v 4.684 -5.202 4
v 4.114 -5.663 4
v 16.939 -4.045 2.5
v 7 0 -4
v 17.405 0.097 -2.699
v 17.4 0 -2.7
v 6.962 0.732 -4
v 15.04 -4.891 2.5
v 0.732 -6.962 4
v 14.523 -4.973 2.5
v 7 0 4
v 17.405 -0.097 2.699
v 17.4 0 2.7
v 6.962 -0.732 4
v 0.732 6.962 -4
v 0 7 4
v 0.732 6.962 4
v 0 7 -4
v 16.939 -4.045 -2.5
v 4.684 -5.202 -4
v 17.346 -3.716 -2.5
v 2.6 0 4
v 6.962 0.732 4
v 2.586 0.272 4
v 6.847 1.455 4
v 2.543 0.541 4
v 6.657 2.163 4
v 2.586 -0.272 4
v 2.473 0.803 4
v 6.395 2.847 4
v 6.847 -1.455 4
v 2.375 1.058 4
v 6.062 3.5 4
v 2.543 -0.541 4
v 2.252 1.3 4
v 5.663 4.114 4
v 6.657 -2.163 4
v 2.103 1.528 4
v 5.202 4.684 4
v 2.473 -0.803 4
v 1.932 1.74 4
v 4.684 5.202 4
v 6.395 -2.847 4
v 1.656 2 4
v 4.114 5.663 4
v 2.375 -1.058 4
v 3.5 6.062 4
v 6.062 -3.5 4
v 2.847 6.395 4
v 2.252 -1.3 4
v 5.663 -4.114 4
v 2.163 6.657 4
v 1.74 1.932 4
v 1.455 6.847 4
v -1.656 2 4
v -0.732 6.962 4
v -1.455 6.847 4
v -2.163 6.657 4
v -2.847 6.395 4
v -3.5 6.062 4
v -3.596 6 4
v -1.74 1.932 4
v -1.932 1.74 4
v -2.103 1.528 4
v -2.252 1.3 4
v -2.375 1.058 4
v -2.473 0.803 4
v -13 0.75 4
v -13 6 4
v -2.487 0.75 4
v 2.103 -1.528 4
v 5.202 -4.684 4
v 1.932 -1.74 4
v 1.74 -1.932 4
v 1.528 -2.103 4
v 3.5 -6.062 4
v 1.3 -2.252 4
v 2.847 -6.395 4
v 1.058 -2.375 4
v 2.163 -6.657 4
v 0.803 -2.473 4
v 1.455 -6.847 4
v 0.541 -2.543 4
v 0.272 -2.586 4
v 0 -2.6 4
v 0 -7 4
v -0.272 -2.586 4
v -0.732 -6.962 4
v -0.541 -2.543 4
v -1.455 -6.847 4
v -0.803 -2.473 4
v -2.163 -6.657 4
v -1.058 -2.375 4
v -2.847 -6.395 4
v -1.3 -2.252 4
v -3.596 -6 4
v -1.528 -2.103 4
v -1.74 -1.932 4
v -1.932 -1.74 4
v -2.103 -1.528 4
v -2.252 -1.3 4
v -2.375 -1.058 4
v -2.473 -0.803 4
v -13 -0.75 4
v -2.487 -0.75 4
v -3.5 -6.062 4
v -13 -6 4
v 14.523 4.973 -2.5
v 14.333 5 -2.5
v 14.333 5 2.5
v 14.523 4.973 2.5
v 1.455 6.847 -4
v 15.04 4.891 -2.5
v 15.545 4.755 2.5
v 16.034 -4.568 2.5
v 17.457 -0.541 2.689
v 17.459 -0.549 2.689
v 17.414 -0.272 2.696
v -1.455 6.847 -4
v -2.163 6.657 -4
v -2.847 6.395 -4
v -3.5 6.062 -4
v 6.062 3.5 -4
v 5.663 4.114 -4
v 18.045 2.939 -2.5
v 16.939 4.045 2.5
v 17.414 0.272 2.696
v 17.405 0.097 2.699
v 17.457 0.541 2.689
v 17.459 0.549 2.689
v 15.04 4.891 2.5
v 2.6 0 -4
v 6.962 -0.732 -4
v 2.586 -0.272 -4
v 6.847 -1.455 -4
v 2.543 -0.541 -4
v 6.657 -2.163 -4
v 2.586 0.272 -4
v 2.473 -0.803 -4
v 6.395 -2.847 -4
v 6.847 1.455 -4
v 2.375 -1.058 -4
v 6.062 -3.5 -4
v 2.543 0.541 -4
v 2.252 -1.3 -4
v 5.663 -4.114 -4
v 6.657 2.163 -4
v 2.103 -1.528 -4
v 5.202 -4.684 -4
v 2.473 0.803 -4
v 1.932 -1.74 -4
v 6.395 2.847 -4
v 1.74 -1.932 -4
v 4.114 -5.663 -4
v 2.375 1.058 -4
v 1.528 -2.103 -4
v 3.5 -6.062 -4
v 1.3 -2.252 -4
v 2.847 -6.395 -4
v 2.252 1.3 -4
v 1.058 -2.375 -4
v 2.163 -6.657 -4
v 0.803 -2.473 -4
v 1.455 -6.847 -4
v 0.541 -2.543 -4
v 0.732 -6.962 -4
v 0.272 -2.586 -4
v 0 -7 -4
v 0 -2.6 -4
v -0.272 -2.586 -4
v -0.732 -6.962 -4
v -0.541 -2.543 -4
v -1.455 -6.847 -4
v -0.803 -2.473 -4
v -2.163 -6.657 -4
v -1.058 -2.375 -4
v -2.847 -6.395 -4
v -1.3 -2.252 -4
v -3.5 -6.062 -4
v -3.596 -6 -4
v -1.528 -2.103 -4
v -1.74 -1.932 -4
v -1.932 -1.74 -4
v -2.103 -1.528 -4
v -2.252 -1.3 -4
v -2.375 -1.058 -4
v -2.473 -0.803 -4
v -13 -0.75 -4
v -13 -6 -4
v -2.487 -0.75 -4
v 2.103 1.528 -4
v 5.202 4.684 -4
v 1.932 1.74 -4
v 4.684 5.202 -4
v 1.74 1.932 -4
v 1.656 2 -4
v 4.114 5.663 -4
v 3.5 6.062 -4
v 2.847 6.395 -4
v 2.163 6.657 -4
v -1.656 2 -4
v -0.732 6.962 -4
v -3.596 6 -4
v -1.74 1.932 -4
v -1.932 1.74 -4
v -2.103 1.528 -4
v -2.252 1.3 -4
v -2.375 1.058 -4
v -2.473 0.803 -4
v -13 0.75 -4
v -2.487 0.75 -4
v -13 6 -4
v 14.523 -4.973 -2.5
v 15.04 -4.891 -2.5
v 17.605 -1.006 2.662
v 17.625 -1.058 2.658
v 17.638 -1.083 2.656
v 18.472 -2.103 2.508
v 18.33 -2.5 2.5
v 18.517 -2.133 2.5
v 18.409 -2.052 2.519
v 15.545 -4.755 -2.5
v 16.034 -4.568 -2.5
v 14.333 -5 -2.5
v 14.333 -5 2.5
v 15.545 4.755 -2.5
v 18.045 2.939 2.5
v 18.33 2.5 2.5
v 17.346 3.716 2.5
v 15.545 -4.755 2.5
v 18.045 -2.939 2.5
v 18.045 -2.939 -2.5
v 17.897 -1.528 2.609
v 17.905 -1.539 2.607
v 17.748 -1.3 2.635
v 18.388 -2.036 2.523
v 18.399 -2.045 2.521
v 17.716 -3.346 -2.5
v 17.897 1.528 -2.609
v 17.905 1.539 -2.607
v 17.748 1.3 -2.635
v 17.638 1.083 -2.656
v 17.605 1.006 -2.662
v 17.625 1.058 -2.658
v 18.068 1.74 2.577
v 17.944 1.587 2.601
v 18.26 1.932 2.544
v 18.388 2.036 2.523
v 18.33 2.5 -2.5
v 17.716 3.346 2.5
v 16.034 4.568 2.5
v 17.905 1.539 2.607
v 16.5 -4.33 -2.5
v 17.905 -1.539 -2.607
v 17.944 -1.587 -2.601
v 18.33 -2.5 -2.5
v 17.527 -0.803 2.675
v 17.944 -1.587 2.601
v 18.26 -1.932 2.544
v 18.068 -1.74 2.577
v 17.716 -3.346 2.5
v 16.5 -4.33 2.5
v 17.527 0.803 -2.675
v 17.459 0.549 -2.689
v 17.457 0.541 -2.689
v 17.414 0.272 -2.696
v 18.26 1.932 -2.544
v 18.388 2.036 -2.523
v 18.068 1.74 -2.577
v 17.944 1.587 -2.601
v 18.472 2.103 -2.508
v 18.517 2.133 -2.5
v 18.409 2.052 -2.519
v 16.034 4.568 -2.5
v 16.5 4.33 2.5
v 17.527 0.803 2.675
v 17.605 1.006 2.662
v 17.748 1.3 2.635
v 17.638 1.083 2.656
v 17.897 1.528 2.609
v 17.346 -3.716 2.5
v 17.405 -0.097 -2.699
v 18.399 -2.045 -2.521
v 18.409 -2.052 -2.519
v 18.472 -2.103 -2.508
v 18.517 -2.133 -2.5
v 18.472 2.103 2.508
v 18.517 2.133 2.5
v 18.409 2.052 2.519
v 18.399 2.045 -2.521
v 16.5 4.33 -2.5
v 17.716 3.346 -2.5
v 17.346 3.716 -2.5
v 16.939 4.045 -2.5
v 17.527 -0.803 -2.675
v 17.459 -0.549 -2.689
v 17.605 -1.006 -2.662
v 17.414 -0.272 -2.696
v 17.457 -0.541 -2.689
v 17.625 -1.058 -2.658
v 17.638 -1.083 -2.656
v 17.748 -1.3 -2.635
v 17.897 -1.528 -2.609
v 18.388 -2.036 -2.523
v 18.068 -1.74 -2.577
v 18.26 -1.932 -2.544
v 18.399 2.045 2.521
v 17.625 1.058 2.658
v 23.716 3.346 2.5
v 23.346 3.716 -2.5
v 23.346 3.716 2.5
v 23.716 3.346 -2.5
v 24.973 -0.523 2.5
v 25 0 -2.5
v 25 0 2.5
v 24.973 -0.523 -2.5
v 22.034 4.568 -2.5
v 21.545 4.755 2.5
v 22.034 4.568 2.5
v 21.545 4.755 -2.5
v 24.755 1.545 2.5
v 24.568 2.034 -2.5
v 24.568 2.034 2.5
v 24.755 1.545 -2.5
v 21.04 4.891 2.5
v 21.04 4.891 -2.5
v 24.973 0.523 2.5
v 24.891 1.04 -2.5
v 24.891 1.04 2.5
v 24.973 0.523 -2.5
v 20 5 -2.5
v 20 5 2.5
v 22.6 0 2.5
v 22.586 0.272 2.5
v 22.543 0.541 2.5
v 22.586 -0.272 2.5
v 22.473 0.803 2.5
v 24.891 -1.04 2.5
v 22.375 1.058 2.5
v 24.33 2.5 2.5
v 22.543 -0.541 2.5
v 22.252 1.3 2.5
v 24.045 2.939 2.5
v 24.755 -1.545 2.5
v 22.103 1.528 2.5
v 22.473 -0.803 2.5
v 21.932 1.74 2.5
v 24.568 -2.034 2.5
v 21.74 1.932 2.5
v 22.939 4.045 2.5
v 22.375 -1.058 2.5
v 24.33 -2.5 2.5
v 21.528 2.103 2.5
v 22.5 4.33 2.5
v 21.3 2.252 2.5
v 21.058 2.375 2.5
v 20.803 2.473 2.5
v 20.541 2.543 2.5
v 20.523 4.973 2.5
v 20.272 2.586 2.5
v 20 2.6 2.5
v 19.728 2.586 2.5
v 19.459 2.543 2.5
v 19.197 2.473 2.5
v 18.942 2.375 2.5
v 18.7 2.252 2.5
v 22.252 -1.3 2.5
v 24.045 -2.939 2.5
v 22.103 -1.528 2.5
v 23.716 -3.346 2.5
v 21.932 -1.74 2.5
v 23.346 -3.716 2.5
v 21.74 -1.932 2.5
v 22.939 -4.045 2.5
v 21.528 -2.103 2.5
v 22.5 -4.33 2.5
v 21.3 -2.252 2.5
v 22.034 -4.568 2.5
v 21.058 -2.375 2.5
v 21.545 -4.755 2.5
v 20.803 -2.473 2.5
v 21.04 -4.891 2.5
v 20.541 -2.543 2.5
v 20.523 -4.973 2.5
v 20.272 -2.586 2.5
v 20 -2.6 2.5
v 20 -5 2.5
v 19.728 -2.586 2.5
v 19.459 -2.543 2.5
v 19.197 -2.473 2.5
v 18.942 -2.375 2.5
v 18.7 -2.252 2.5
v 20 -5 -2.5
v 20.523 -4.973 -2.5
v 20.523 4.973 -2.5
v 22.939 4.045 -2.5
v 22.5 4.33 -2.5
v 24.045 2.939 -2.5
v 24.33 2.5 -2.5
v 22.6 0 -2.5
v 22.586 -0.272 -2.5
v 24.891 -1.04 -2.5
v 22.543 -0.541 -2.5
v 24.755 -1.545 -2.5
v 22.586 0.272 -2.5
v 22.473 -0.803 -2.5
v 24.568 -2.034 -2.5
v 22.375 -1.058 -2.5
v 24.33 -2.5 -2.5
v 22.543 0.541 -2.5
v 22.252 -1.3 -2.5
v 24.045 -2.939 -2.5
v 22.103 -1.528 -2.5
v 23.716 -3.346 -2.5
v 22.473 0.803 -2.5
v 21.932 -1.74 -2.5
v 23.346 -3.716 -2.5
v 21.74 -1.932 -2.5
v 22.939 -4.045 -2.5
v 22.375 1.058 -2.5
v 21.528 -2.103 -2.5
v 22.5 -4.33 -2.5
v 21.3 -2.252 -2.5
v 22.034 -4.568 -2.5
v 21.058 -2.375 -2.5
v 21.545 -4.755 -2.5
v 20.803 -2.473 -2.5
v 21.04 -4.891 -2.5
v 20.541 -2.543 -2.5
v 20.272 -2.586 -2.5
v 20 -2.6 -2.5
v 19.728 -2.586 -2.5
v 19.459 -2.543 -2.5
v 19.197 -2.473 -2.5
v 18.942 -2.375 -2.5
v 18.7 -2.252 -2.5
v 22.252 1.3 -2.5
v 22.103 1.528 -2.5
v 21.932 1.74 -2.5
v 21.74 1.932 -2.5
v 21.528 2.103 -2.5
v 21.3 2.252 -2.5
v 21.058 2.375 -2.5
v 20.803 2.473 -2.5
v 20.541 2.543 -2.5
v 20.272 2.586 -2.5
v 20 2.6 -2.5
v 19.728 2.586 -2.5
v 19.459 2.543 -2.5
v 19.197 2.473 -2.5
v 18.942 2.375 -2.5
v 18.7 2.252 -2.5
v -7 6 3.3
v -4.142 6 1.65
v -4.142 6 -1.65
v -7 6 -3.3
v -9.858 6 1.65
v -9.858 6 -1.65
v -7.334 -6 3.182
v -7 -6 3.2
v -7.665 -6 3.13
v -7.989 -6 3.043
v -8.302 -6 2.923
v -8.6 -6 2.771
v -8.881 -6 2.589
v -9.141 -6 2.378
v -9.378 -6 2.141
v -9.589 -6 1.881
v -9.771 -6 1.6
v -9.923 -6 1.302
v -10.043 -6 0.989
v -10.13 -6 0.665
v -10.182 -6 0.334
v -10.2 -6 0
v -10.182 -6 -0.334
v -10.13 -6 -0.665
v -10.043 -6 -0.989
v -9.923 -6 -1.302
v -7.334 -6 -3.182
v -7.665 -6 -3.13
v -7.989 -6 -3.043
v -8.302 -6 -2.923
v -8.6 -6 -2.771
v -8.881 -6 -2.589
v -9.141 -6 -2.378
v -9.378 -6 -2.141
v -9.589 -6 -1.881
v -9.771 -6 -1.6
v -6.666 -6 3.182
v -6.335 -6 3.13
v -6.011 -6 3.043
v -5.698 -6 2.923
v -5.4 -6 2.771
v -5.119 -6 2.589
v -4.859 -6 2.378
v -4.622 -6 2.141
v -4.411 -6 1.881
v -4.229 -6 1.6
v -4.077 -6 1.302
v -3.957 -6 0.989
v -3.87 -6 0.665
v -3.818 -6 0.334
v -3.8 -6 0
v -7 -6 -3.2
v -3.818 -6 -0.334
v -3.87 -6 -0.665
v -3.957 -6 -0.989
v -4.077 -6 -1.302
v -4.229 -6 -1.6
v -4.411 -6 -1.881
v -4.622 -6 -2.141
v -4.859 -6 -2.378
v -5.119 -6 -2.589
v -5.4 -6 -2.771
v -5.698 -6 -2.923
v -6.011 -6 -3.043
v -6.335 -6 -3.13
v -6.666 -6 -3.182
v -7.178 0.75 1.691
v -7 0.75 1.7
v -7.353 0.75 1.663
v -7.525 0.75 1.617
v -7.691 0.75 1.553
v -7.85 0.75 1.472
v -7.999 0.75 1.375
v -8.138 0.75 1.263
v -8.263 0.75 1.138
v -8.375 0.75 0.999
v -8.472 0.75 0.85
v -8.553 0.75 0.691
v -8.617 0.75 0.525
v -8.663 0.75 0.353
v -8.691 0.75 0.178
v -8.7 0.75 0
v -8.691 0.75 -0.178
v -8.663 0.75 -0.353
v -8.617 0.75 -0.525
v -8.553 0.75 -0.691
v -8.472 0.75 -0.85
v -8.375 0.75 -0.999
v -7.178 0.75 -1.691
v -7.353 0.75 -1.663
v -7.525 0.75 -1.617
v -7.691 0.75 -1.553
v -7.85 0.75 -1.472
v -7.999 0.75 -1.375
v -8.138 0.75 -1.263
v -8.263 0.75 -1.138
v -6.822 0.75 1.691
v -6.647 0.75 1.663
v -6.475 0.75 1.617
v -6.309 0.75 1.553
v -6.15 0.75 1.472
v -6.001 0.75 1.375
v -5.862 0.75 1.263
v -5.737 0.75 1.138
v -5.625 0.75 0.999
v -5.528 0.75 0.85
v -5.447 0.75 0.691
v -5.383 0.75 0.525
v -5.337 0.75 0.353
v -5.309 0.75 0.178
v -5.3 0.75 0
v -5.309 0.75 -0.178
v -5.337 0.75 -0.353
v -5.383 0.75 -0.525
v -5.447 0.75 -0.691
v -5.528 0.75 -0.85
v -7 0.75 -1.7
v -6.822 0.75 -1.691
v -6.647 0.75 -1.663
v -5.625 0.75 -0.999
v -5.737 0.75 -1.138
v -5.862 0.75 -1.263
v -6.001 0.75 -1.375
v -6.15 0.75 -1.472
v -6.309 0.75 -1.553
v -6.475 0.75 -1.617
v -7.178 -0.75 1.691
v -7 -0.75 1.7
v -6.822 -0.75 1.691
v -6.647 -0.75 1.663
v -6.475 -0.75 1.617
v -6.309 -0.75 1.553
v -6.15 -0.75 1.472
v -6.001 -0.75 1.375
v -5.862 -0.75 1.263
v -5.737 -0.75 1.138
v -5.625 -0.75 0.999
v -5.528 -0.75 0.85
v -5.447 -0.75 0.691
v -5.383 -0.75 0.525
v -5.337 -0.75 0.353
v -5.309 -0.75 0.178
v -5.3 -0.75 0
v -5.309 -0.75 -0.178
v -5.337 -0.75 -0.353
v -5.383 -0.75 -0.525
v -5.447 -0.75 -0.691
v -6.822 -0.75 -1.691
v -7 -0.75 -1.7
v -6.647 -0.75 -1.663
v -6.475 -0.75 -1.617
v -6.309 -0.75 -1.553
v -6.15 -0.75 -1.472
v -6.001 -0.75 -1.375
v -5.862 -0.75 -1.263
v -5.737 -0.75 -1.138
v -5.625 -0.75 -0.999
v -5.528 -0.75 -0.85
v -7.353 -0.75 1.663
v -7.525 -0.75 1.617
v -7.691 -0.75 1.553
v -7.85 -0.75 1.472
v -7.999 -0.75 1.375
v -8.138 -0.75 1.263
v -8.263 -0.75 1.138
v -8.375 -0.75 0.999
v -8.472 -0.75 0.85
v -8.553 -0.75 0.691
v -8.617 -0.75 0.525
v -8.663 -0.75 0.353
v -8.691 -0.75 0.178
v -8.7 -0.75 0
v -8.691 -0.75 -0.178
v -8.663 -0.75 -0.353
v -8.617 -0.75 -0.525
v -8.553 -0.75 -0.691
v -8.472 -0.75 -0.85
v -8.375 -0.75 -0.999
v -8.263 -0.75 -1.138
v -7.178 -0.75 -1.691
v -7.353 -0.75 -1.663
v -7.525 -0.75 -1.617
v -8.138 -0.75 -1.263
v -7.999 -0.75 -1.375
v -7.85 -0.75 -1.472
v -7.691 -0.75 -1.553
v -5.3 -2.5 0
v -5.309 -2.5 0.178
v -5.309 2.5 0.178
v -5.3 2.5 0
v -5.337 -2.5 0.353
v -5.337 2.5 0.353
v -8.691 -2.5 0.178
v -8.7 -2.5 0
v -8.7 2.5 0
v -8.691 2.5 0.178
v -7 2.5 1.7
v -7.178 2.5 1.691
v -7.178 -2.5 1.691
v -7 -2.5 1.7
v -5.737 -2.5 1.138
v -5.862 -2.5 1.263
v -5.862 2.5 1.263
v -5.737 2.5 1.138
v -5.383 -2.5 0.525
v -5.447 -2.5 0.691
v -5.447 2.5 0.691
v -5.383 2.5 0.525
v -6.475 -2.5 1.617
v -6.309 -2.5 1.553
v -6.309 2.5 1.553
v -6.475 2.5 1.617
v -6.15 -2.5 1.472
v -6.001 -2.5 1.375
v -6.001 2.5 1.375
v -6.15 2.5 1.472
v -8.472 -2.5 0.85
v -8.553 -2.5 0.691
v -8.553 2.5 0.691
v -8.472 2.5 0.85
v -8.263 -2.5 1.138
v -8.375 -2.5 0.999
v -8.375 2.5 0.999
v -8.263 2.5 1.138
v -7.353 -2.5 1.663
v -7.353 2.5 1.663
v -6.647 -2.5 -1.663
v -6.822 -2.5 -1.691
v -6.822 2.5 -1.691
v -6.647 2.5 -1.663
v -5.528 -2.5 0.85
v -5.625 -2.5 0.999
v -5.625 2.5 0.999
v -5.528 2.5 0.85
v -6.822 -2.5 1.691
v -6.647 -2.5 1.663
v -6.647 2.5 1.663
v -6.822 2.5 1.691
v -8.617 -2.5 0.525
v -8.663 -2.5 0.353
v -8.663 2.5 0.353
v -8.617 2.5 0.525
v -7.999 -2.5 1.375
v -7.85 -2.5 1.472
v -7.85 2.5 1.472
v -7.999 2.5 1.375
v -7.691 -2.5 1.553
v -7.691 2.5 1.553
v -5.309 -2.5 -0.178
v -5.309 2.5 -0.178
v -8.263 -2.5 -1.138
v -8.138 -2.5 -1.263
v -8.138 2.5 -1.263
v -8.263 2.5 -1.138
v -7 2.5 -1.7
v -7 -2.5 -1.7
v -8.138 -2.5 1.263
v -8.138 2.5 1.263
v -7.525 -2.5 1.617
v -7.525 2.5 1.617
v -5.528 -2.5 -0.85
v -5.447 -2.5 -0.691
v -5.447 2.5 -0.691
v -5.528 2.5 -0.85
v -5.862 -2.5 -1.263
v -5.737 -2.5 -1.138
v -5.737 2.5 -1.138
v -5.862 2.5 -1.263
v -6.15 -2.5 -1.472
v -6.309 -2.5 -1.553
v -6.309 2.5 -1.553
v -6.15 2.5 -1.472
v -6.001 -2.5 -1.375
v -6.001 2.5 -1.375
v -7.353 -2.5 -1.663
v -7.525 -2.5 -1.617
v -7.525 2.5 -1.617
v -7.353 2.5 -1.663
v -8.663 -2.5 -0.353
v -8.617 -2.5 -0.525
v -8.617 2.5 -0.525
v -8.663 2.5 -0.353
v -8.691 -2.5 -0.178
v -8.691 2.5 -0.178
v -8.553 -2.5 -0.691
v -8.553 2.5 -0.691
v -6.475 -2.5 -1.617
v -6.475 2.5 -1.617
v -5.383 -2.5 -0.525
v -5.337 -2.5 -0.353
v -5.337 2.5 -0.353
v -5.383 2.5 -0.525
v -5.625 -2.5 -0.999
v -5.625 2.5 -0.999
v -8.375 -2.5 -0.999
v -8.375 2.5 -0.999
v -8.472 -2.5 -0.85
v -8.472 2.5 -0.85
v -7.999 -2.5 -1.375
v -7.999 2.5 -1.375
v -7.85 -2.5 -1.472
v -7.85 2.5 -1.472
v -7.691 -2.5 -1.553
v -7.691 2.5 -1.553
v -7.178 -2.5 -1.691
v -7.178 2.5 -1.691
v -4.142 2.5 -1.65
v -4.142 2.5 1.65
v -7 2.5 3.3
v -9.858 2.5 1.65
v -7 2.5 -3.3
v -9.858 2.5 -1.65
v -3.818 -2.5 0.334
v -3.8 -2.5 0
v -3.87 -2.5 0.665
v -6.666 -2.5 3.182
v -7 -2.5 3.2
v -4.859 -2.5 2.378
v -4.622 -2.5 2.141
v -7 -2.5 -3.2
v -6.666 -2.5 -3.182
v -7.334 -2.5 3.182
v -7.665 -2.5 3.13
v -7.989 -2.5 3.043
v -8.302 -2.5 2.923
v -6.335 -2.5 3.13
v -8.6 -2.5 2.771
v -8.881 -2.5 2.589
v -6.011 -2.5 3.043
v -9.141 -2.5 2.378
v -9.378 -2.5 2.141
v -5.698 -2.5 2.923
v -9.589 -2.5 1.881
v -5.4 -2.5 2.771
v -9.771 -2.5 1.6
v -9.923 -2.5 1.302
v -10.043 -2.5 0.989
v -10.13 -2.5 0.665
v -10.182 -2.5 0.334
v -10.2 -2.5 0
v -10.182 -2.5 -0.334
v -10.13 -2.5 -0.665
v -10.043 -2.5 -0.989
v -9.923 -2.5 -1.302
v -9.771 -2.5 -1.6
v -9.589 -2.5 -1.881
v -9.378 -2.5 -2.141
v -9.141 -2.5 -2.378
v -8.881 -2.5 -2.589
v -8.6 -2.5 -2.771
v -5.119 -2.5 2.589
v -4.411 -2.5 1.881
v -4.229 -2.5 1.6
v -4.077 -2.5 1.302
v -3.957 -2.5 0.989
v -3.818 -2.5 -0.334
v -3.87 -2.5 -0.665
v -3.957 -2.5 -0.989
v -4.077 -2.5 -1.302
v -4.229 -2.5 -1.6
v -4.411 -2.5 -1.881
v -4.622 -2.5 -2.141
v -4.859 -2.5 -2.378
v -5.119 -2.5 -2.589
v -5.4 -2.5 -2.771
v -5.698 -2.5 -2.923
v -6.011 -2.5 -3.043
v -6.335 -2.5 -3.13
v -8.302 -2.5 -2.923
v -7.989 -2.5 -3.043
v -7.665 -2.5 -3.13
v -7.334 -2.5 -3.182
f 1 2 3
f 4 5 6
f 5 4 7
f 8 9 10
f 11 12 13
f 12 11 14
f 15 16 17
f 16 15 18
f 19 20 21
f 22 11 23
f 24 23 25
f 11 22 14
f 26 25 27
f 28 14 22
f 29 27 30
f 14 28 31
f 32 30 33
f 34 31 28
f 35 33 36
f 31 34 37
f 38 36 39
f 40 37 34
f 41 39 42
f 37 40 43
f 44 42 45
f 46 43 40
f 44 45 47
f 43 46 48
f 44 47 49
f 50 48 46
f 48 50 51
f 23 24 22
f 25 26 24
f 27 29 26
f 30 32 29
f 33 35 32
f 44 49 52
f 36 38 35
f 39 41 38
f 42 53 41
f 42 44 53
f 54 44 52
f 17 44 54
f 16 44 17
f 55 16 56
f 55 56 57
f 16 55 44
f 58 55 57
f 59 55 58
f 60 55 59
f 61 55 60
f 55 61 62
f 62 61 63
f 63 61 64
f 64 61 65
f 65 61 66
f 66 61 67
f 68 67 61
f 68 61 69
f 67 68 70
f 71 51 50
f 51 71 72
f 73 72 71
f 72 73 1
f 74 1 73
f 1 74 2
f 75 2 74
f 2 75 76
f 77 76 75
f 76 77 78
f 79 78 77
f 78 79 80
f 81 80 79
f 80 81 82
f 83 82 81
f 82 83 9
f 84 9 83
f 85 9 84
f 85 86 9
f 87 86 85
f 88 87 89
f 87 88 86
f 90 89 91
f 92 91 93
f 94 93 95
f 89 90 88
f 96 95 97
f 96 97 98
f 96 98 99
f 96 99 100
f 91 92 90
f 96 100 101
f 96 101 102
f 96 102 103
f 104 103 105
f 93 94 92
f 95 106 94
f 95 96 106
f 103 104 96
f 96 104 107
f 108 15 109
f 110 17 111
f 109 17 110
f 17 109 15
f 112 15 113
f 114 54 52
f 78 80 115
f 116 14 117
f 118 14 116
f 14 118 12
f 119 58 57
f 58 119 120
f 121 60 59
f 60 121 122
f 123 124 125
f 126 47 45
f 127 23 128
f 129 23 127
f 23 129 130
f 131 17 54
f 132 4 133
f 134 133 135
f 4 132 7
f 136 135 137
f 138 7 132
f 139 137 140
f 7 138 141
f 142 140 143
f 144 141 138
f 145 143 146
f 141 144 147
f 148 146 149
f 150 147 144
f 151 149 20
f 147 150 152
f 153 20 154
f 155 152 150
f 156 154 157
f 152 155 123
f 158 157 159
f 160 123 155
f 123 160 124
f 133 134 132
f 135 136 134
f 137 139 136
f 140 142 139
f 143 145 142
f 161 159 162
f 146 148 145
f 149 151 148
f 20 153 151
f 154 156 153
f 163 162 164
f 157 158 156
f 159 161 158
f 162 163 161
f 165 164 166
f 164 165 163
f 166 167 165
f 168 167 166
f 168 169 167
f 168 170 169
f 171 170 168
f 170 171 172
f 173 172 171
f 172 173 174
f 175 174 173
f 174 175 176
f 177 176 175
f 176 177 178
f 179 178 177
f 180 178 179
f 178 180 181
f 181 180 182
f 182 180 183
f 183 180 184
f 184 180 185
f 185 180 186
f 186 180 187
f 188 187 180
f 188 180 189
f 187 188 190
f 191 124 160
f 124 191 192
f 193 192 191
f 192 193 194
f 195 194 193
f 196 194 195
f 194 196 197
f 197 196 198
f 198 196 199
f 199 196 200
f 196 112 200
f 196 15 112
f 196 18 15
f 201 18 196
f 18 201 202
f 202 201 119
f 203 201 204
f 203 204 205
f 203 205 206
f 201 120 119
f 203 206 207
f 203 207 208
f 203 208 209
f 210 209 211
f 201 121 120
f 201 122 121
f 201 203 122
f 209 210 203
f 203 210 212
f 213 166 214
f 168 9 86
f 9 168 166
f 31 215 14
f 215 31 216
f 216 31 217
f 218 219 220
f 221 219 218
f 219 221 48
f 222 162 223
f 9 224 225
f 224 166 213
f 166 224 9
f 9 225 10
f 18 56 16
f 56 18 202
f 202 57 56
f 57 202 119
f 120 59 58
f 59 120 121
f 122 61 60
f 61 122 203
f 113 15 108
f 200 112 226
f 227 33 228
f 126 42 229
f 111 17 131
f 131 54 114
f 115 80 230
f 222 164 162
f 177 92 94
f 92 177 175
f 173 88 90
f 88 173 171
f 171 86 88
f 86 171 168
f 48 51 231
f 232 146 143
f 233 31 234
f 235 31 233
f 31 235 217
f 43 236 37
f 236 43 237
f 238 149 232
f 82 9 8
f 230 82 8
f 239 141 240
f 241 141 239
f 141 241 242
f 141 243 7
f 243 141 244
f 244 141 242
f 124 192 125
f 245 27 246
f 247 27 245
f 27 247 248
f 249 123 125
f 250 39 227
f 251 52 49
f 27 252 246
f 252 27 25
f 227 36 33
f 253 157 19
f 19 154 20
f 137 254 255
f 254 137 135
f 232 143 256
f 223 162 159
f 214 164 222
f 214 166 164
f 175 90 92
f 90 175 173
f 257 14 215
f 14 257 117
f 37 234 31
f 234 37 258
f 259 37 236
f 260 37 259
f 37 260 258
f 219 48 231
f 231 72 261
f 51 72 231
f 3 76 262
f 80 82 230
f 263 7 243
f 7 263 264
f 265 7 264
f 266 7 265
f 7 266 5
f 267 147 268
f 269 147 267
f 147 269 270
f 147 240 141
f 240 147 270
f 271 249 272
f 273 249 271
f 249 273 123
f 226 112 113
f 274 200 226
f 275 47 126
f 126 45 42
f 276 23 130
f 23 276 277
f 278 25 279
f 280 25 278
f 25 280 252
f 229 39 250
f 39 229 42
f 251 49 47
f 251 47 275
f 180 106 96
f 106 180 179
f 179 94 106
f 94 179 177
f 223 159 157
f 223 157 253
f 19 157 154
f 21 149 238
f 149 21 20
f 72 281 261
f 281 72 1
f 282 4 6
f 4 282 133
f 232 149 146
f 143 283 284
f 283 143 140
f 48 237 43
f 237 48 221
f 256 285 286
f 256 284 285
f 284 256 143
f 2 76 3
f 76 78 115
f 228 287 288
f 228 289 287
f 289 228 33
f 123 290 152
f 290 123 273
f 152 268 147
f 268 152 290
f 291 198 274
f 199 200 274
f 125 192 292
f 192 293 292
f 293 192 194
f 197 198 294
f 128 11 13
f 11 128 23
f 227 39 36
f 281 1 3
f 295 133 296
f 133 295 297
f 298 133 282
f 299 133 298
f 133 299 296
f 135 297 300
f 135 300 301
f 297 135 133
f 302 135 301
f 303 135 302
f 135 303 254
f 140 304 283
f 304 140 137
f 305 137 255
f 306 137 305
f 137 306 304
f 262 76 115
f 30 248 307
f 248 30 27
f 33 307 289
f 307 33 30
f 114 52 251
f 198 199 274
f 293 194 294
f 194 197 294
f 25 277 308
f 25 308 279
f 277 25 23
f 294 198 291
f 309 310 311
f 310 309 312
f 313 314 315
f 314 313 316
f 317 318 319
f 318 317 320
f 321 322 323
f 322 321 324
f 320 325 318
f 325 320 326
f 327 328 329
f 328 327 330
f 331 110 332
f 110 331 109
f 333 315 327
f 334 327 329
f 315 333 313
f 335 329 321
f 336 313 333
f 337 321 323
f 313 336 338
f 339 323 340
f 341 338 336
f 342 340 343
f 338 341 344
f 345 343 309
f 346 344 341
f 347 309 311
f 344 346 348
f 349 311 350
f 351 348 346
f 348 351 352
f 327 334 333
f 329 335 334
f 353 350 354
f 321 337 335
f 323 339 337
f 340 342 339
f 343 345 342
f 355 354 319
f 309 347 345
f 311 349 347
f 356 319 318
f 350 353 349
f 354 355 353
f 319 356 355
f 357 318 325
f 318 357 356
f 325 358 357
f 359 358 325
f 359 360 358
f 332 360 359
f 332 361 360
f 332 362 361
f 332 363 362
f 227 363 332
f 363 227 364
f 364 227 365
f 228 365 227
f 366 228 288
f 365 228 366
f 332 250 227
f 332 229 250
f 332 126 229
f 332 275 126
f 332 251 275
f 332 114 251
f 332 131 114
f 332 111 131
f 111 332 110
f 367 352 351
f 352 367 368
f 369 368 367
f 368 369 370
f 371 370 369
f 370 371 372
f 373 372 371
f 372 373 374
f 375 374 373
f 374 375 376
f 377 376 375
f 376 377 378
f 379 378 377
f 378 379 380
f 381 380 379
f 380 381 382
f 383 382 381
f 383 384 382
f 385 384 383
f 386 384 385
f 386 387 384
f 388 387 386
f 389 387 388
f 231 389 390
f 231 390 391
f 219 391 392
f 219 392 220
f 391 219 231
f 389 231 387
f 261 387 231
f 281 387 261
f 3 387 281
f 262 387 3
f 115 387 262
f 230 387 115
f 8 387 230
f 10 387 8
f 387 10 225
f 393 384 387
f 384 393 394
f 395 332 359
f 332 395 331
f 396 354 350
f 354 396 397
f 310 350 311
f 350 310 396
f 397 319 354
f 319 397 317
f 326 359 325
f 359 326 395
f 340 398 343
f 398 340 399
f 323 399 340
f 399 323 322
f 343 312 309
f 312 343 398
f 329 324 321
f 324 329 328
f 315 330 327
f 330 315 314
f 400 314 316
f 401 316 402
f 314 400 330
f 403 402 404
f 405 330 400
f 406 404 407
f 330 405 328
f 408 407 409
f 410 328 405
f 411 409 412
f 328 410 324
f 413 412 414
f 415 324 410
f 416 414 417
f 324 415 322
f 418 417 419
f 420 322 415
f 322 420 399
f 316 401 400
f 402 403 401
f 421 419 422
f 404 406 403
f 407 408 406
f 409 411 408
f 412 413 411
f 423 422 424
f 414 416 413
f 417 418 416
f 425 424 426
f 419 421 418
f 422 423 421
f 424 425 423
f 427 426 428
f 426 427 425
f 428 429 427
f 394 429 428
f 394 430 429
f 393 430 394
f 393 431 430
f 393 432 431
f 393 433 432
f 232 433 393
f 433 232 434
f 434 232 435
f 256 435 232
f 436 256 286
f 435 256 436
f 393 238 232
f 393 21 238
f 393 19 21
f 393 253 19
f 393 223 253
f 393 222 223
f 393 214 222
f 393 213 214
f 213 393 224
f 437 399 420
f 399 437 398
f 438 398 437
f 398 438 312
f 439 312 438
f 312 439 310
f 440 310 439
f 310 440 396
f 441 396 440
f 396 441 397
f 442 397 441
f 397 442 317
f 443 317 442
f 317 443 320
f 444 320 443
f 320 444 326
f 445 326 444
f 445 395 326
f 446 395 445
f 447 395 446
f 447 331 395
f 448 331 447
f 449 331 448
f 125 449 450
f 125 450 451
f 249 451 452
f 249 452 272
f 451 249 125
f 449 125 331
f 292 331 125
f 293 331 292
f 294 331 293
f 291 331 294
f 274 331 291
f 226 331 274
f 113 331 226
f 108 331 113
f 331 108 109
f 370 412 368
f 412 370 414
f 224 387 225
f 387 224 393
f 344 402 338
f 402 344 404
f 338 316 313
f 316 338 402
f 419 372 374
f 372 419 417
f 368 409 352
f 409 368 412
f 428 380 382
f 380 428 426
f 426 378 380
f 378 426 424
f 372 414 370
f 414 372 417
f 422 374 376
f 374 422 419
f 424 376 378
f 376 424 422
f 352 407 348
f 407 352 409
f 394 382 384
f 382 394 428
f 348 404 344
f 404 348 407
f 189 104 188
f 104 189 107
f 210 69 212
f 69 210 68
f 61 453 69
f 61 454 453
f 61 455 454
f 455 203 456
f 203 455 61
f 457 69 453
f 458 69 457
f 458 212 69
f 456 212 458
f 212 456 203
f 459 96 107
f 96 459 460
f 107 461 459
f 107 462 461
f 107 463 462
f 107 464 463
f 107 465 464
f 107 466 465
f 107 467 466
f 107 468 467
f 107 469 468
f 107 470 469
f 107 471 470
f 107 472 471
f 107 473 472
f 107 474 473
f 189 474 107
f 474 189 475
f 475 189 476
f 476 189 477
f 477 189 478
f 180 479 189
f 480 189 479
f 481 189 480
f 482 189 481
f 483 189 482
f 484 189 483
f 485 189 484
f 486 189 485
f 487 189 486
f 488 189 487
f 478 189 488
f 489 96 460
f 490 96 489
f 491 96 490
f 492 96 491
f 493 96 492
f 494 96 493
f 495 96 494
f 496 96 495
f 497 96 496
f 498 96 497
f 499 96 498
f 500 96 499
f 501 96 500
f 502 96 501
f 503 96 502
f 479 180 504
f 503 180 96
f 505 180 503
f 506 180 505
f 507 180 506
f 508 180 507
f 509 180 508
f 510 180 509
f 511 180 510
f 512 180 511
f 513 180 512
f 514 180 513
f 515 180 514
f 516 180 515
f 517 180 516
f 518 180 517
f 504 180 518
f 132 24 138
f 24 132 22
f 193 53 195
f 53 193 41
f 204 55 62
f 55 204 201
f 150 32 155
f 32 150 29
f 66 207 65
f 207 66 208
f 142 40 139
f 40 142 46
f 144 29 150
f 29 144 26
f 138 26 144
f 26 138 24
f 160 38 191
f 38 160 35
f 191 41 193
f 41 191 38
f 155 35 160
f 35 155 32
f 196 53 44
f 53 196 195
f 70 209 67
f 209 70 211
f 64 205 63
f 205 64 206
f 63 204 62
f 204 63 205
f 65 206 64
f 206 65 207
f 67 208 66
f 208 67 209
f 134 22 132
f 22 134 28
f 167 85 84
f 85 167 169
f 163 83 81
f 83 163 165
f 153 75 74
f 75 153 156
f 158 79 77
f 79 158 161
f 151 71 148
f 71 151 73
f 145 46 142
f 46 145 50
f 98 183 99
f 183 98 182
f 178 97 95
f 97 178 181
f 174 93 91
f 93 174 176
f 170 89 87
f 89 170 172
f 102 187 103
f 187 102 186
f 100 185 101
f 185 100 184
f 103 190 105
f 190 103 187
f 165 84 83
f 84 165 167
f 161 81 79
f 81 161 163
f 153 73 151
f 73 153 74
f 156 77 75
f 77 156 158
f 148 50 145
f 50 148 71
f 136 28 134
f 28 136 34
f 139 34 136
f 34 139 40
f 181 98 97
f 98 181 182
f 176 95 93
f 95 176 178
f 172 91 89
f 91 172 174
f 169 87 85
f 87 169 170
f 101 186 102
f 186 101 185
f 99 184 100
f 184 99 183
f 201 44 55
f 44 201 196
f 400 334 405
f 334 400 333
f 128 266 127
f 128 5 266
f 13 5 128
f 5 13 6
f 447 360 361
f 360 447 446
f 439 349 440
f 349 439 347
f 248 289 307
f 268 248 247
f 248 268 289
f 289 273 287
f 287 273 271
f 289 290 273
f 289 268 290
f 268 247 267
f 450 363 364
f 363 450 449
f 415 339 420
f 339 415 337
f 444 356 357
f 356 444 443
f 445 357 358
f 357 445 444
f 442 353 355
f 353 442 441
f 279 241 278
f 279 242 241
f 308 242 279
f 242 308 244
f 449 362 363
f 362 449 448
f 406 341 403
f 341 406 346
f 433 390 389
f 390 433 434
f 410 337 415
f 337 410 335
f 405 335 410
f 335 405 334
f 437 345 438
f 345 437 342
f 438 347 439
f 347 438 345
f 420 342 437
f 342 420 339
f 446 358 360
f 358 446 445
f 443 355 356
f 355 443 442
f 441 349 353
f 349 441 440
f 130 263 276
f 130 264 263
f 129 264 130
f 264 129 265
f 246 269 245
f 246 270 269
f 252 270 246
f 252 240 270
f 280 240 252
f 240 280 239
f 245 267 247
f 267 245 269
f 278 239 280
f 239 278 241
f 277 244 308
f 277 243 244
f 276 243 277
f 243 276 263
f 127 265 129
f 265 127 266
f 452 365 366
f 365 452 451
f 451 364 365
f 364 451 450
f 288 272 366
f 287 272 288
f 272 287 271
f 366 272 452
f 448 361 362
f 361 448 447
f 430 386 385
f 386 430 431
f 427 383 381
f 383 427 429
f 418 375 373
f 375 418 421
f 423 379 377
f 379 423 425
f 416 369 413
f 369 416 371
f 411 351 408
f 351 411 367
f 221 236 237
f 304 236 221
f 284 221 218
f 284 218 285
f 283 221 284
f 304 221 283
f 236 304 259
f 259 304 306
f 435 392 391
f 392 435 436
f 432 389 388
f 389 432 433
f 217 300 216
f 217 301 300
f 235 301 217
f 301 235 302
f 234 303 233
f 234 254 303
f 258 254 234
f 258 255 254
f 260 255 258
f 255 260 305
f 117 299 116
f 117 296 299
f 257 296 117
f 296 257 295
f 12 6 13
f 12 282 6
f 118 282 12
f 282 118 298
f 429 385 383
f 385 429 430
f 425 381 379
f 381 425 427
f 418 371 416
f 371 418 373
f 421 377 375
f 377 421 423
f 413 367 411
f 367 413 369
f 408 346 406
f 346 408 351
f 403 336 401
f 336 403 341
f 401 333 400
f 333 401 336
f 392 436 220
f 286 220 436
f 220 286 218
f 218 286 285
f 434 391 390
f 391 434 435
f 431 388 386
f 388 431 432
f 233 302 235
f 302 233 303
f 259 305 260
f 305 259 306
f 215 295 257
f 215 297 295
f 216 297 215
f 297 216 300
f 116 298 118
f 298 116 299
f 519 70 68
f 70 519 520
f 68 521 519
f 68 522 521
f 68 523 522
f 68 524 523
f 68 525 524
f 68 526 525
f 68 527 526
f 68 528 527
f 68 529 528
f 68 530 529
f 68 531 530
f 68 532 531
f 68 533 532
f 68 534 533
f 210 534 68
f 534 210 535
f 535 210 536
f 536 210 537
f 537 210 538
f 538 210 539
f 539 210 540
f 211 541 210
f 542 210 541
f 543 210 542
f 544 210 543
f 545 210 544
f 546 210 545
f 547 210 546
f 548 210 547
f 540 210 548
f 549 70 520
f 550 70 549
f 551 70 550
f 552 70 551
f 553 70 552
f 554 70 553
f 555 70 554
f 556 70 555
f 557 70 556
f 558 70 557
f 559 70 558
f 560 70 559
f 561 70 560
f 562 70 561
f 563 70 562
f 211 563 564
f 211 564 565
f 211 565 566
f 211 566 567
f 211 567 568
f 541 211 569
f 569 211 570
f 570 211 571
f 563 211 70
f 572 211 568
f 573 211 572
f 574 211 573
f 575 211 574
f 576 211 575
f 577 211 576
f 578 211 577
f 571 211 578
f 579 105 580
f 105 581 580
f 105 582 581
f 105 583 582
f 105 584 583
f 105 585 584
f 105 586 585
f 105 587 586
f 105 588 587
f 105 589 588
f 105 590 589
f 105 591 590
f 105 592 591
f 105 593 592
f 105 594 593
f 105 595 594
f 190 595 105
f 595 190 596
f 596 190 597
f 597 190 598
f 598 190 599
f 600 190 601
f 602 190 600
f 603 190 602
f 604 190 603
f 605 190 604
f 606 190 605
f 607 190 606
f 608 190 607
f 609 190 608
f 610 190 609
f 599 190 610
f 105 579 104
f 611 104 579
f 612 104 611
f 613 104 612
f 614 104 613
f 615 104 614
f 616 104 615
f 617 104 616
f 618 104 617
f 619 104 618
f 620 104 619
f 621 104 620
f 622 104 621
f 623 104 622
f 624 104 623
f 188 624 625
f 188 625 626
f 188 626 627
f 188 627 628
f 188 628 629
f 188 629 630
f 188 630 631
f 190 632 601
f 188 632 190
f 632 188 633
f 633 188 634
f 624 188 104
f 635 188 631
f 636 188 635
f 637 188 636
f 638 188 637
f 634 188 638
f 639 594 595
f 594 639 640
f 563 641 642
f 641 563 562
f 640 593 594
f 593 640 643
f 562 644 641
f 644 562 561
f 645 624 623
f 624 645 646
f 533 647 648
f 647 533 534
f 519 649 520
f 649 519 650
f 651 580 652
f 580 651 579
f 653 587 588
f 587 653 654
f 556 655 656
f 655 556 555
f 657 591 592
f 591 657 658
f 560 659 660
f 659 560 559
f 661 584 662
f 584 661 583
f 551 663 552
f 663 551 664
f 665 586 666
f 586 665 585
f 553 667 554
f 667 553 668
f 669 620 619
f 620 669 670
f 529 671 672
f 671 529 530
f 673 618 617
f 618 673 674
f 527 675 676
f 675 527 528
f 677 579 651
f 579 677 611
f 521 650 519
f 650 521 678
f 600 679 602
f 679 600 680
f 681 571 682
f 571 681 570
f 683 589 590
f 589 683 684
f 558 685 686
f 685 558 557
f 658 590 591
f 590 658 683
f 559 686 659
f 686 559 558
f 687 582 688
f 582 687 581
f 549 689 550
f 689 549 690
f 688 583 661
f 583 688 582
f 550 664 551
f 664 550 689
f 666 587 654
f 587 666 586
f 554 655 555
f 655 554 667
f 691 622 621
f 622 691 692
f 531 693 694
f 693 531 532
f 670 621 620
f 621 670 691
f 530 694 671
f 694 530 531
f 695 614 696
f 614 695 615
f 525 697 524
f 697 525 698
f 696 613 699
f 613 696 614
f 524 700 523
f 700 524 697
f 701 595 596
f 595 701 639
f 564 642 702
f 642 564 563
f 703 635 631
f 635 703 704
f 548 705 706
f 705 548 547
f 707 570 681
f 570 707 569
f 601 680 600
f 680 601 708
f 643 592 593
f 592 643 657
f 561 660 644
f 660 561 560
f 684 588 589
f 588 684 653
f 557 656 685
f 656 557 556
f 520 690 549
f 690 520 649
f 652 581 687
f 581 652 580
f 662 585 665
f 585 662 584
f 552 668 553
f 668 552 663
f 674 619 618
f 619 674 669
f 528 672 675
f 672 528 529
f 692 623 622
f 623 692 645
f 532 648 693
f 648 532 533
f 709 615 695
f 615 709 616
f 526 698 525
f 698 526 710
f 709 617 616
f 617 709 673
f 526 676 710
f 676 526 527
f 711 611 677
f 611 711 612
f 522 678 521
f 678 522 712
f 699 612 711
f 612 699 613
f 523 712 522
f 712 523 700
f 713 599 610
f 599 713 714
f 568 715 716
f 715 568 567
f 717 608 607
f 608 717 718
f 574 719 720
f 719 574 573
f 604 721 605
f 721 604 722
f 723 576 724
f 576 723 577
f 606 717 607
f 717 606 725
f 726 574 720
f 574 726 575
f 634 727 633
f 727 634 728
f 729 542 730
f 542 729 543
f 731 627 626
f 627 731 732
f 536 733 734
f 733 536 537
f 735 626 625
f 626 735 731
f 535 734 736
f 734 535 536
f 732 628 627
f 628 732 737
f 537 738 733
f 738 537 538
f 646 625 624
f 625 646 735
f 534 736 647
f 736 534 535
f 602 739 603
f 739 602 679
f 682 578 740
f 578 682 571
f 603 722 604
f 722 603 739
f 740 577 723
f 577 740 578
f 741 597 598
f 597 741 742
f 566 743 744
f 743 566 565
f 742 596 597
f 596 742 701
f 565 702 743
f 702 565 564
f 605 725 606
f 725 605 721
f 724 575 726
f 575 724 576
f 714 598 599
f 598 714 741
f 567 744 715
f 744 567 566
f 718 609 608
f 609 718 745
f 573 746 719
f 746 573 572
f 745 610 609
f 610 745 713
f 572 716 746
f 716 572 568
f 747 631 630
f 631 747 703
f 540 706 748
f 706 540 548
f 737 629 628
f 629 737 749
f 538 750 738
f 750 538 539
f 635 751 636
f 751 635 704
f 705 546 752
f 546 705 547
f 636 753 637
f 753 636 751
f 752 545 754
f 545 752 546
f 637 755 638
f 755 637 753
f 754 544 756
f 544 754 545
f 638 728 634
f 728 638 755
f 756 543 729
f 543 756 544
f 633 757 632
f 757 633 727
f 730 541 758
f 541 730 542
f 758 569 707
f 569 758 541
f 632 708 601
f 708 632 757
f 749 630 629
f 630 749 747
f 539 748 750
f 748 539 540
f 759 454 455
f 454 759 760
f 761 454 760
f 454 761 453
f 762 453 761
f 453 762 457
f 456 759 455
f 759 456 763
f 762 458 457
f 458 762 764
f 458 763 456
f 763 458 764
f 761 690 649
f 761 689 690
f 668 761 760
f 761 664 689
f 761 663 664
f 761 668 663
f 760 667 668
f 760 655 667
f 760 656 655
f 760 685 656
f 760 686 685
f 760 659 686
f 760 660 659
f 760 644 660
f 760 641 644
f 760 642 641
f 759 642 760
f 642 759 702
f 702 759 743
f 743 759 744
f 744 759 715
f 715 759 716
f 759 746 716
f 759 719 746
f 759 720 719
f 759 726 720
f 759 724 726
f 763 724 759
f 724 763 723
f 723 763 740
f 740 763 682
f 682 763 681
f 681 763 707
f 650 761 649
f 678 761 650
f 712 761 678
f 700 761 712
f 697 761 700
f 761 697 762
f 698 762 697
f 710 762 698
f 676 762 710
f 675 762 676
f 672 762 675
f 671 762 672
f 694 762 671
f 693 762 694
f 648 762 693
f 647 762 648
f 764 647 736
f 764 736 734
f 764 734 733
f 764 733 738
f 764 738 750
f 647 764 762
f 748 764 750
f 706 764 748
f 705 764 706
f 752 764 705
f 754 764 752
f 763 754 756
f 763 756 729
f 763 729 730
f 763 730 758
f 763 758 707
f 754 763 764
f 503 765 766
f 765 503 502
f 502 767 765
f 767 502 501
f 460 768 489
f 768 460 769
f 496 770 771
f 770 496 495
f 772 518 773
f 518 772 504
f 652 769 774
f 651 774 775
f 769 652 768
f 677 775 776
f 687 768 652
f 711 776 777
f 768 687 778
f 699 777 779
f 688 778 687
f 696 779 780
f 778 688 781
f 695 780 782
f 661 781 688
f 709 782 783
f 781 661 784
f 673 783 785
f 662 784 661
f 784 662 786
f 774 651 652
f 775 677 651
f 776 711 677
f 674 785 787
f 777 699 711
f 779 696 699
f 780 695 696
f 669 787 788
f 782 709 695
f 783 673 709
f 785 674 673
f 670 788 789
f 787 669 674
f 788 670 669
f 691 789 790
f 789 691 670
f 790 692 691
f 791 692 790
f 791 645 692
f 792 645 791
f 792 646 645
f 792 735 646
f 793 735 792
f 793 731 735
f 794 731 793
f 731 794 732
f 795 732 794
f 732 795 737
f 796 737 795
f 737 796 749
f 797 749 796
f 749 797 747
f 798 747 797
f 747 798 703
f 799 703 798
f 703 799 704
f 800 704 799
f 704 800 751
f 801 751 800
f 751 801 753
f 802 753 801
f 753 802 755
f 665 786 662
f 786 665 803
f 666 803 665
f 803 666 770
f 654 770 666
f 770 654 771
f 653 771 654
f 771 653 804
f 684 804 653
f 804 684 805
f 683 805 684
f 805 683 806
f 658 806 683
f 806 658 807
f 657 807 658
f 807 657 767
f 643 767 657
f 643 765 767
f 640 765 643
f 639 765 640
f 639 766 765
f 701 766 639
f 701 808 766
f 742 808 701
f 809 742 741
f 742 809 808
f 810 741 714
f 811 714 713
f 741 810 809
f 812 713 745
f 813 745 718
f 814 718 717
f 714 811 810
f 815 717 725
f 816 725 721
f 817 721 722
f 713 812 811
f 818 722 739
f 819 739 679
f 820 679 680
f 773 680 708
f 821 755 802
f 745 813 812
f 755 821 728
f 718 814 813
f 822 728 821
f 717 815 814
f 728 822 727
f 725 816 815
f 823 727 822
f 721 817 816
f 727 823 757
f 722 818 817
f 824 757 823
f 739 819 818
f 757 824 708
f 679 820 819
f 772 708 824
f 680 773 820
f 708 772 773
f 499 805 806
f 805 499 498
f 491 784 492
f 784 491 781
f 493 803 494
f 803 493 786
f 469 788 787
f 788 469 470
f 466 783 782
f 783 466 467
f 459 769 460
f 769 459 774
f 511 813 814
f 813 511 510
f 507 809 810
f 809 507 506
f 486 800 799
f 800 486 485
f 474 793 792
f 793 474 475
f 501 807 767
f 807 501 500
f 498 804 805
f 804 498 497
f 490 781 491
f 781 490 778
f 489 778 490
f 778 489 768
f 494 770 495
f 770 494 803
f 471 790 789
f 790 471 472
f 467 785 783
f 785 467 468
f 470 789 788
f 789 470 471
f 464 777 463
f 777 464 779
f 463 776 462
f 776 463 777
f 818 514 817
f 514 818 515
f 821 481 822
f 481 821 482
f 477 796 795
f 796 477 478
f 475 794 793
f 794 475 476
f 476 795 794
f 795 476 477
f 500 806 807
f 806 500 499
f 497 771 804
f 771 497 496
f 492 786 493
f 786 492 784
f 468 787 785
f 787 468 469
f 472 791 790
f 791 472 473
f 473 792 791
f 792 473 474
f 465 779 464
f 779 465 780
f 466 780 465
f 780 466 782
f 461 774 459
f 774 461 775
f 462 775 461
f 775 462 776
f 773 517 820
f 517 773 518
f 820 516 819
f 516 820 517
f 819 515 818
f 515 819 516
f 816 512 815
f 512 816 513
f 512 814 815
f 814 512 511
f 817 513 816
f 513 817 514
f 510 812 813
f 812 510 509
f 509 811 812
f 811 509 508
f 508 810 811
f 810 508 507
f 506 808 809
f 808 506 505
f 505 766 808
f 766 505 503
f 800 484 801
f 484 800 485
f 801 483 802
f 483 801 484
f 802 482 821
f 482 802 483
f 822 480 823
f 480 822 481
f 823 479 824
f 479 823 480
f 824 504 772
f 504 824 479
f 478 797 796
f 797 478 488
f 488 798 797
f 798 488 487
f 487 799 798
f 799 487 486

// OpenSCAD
// clamping_motor_horn.scad - 3D Printable Motor Horn (STL Export)
// Features a friction-clamp design with an integrated M3 nut trap for zero-slip torque.
$fn = 60;
// --- User Parameters ---
throw_length = 20.0;      // Distance from motor shaft center to the Traxxas rod end
horn_thickness = 8.0;     // Thickness at the hub (motor shaft) end
tip_thickness = 5.0;      // Thickness at the tip (M5 hole) end - horn tapers linearly between the two
flat_zone_length = 6.0;   // Length of flat, un-tapered material kept around the M5 hole
hub_dia = 14.0;           // Outer diameter of the central hub
tip_dia = 10.0;           // Outer diameter of the tip (where the rod end attaches)
shaft_dia = 5.2;          // 5mm motor shaft + 0.2mm 3D printing tolerance
flat_depth = 0.6;         // Depth of the NEMA 17 D-shaft flat
m3_clearance = 1.7;       // 3.4mm diameter for M3 bolts to pass through freely
m5_clearance = 2.6;       // 3.4mm diameter for M3 bolts to pass through freely
// --- Cutout Modules ---
// The D-Shaft profile
module d_shaft_cutout() {
    difference() {
        cylinder(r=shaft_dia/2, h=horn_thickness + 2, center=true);
        // Slices off the top edge to create the flat for the D-shaft
        translate([0, (shaft_dia/2) - flat_depth + 2.5, 0])
            cube([shaft_dia+2, 5, horn_thickness + 4], center=true);
    }
}
// --- Main Horn Geometry ---
difference() {
    // 1. --- MAIN SOLID BODY ---
    union() {
        // The lever arm, built in two stages so the area around the M5 hole
        // stays flat instead of continuing to slope right through it:
        //   1) a tapered hull from the hub down to a "neck" point where the
        //      material has already reached tip_thickness
        //   2) a flat (constant-thickness) hull from that neck out to the
        //      tip, so the hole sits in a flush pad
        neck_x = throw_length - flat_zone_length;

        hull() {
            cylinder(r=hub_dia/2, h=horn_thickness, center=true);
            translate([neck_x, 0, 0])
                cylinder(r=tip_dia/2, h=tip_thickness, center=true);
        }
        hull() {
            translate([neck_x, 0, 0])
                cylinder(r=tip_dia/2, h=tip_thickness, center=true);
            translate([throw_length, 0, 0])
                cylinder(r=tip_dia/2, h=tip_thickness, center=true);
        }

        // The clamping block (extends backwards from the shaft)
        translate([-7, 0, 0])
            cube([12, 12, horn_thickness], center=true);
    }

    // 2. --- NEGATIVE CUTOUTS ---

    // Motor Shaft
    d_shaft_cutout();

    // Linkage Hole (For attaching the Traxxas rod end with an M3 bolt)
    // Cut height is still based on horn_thickness so it fully passes through
    // the tapered arm even though the arm is thinner here (4mm).
    translate([throw_length, 0, 0])
        cylinder(r=m5_clearance, h=horn_thickness + 2, center=true);

    // Clamping Slit (Allows the plastic to flex and grip the shaft)
    translate([-10, 0, 0])
        cube([20, 1.5, horn_thickness + 2], center=true);

    // Clamping Bolt Hole (Passes perpendicularly through the slit)
    translate([-7, 0, 0])
        rotate([90, 0, 0])
        cylinder(r=m3_clearance, h=20, center=true);

    // M3 Hex Nut Trap
    // Fits a standard M3 nut. Drop the nut in here, it locks in place so you can tighten from the other side.
    translate([-7, 4.5, 0])
        rotate([90, 30, 0])
        cylinder(r=3.3, h=4, $fn=6, center=true);

    // Bolt Head Recess
    // Sinks the head of the M3 cap screw into the plastic so it looks clean.
    translate([-7, -4.5, 0])
        rotate([90, 0, 0])
        cylinder(r=3.2, h=4, center=true);
}
